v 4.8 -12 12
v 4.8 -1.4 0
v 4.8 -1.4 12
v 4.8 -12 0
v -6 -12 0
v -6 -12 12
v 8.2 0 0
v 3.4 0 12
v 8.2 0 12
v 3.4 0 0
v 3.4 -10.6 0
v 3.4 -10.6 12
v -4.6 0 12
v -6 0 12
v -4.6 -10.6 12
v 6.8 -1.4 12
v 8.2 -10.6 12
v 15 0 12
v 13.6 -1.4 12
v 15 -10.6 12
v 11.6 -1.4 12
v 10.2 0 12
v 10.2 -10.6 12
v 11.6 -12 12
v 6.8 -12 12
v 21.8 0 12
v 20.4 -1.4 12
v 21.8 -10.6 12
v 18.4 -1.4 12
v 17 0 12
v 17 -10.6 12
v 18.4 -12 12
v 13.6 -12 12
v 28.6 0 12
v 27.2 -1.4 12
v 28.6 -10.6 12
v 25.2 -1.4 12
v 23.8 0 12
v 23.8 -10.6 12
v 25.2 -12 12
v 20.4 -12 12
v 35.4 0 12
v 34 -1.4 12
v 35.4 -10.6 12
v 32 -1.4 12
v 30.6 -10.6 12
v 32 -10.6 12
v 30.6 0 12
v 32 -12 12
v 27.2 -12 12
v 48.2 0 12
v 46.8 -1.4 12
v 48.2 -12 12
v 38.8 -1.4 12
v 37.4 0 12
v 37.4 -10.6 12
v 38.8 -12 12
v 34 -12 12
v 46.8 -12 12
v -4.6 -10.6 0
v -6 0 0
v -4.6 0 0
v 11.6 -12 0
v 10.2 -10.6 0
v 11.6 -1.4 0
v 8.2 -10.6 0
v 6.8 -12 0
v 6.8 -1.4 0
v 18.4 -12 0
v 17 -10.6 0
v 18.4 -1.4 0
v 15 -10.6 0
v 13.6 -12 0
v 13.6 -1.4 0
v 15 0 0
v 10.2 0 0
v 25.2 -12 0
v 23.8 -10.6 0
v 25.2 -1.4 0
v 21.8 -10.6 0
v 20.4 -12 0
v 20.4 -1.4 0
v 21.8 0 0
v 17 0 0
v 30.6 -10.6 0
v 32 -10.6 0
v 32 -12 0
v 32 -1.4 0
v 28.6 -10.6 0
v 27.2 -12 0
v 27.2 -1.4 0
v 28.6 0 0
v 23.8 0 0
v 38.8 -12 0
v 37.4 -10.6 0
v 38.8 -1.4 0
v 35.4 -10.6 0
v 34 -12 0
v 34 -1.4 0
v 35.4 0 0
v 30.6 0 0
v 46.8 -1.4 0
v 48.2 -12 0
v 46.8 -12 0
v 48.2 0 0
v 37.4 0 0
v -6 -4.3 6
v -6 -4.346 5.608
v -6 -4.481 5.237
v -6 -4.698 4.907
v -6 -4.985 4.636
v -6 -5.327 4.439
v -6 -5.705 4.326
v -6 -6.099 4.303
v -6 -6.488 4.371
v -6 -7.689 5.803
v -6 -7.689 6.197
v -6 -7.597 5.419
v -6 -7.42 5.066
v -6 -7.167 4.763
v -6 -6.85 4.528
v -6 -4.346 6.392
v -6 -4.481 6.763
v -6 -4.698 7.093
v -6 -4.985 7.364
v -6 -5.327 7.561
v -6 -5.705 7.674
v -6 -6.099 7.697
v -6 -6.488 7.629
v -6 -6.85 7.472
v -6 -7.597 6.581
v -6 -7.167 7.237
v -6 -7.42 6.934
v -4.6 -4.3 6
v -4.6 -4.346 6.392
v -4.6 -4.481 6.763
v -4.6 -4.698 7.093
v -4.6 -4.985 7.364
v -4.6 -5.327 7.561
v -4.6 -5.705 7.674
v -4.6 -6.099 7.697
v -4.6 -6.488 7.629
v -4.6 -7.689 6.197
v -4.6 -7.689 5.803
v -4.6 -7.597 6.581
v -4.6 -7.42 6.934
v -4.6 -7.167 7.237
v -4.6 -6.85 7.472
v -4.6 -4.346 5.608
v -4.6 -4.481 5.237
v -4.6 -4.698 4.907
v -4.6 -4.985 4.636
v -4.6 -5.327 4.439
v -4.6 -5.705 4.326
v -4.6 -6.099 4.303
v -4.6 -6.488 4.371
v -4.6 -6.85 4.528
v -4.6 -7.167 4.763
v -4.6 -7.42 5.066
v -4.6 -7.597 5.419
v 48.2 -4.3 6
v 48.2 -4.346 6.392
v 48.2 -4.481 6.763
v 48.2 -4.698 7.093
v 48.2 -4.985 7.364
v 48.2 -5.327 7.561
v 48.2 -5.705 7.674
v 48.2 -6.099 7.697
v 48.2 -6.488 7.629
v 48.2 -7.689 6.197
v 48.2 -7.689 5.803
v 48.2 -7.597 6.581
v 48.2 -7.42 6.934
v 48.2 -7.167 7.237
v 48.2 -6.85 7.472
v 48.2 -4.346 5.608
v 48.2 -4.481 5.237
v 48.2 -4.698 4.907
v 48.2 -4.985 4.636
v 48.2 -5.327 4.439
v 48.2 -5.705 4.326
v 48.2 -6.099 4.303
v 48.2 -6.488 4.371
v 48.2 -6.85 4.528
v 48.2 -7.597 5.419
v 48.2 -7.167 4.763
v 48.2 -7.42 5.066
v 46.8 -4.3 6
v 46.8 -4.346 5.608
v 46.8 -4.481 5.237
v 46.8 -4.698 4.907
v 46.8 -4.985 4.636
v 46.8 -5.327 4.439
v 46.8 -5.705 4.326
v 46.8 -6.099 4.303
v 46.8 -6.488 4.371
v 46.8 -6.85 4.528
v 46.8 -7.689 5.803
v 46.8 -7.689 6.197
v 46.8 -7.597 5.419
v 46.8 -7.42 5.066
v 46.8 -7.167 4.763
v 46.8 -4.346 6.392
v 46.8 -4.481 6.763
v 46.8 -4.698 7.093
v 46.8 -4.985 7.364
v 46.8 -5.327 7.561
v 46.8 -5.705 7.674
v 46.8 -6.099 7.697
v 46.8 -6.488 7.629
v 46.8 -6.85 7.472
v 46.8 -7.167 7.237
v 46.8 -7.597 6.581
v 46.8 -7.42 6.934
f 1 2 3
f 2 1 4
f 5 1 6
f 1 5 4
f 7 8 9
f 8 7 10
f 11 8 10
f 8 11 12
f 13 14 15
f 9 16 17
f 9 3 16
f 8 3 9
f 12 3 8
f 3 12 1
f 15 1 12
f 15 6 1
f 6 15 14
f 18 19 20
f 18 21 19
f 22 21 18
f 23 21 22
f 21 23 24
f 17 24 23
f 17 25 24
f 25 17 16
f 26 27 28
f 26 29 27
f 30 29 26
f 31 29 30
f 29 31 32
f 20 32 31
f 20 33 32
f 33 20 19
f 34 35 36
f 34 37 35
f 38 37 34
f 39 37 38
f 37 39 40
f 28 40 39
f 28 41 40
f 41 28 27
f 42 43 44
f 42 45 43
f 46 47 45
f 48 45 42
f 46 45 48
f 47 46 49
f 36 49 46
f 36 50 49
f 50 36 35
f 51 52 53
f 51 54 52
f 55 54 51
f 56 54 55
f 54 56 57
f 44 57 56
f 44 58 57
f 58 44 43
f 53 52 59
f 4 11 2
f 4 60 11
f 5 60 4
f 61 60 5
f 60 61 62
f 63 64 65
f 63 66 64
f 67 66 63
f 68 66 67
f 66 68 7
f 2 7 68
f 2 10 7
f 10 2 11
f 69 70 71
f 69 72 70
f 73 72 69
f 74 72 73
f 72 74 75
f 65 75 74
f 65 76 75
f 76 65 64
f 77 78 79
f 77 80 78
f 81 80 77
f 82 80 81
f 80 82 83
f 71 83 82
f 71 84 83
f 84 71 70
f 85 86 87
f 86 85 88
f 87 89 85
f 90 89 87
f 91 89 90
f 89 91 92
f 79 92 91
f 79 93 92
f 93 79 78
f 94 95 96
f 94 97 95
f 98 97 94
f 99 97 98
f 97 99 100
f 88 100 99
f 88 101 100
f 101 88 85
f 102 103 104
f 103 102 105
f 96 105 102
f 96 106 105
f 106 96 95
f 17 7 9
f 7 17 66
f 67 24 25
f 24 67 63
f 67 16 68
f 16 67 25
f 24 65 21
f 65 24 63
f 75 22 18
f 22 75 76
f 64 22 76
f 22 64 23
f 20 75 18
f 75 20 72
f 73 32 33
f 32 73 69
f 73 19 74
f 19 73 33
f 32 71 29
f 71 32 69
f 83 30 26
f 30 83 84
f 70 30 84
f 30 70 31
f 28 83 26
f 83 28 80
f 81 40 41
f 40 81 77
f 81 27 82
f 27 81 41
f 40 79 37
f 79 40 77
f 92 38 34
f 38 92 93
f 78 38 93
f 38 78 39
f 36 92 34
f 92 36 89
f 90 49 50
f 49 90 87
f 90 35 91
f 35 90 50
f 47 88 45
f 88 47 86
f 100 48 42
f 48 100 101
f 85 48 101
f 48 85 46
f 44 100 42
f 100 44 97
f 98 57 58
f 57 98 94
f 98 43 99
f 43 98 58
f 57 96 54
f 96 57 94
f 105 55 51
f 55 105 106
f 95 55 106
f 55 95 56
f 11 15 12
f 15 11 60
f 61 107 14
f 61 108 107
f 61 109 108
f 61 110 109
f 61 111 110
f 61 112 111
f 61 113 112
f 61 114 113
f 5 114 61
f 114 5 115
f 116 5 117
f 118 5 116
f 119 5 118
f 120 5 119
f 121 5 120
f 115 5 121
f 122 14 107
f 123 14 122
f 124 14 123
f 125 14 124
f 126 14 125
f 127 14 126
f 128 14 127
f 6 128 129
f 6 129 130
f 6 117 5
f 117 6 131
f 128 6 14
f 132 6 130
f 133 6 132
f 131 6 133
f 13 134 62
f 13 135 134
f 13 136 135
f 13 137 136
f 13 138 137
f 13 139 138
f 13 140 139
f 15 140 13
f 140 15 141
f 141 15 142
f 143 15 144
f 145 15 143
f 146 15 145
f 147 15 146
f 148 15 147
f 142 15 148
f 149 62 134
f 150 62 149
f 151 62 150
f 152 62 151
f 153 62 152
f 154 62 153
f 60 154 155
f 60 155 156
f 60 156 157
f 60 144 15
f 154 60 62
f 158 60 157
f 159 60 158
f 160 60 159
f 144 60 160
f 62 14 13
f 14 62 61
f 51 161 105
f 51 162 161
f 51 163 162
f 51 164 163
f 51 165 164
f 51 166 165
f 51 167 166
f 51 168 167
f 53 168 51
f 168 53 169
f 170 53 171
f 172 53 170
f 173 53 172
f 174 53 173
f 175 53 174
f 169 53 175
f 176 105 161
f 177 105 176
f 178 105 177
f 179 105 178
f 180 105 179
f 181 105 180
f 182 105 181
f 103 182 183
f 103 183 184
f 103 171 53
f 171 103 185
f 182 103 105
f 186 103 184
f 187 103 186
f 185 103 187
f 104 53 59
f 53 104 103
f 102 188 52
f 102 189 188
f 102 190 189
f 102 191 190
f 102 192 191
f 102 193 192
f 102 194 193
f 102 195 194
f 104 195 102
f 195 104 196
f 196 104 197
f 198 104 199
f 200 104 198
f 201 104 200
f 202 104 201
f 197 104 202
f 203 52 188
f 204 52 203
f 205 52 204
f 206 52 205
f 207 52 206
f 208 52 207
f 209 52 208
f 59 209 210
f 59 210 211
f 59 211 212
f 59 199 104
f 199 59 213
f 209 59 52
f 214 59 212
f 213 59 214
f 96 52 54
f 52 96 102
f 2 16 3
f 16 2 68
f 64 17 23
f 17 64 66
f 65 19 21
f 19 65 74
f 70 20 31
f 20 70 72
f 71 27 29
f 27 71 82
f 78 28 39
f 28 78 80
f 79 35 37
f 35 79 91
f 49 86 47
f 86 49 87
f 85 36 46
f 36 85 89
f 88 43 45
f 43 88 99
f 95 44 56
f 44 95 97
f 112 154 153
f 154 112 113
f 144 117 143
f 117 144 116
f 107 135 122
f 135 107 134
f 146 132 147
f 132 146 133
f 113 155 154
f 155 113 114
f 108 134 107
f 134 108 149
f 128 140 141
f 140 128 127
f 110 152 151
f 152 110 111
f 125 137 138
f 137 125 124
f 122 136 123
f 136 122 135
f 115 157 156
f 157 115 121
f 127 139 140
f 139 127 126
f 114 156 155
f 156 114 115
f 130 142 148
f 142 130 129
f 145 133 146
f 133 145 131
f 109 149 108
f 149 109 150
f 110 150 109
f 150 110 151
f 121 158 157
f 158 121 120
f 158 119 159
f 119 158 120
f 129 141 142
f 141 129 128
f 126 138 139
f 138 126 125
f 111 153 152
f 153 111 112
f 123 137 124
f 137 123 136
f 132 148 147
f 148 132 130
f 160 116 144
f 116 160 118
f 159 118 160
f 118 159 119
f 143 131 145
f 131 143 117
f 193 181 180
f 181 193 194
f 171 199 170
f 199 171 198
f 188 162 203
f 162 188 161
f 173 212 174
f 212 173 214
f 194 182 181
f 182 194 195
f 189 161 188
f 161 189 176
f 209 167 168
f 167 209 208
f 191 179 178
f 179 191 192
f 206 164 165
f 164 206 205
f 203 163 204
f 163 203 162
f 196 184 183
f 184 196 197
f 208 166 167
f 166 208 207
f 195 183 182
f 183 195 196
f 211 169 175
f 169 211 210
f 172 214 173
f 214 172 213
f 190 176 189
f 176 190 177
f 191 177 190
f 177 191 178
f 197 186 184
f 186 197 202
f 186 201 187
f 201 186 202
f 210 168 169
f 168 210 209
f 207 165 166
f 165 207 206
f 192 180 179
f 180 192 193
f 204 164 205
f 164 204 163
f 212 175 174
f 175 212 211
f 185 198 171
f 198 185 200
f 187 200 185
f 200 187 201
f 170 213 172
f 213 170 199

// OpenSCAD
include <lib/tentacle.scad>


// use the plain model when modifying the module 
//spring(num_of_squares=11);

// use the already rotated model when exporting the stl
rotate([90, 0, 0]) spring(num_of_squares=13);
